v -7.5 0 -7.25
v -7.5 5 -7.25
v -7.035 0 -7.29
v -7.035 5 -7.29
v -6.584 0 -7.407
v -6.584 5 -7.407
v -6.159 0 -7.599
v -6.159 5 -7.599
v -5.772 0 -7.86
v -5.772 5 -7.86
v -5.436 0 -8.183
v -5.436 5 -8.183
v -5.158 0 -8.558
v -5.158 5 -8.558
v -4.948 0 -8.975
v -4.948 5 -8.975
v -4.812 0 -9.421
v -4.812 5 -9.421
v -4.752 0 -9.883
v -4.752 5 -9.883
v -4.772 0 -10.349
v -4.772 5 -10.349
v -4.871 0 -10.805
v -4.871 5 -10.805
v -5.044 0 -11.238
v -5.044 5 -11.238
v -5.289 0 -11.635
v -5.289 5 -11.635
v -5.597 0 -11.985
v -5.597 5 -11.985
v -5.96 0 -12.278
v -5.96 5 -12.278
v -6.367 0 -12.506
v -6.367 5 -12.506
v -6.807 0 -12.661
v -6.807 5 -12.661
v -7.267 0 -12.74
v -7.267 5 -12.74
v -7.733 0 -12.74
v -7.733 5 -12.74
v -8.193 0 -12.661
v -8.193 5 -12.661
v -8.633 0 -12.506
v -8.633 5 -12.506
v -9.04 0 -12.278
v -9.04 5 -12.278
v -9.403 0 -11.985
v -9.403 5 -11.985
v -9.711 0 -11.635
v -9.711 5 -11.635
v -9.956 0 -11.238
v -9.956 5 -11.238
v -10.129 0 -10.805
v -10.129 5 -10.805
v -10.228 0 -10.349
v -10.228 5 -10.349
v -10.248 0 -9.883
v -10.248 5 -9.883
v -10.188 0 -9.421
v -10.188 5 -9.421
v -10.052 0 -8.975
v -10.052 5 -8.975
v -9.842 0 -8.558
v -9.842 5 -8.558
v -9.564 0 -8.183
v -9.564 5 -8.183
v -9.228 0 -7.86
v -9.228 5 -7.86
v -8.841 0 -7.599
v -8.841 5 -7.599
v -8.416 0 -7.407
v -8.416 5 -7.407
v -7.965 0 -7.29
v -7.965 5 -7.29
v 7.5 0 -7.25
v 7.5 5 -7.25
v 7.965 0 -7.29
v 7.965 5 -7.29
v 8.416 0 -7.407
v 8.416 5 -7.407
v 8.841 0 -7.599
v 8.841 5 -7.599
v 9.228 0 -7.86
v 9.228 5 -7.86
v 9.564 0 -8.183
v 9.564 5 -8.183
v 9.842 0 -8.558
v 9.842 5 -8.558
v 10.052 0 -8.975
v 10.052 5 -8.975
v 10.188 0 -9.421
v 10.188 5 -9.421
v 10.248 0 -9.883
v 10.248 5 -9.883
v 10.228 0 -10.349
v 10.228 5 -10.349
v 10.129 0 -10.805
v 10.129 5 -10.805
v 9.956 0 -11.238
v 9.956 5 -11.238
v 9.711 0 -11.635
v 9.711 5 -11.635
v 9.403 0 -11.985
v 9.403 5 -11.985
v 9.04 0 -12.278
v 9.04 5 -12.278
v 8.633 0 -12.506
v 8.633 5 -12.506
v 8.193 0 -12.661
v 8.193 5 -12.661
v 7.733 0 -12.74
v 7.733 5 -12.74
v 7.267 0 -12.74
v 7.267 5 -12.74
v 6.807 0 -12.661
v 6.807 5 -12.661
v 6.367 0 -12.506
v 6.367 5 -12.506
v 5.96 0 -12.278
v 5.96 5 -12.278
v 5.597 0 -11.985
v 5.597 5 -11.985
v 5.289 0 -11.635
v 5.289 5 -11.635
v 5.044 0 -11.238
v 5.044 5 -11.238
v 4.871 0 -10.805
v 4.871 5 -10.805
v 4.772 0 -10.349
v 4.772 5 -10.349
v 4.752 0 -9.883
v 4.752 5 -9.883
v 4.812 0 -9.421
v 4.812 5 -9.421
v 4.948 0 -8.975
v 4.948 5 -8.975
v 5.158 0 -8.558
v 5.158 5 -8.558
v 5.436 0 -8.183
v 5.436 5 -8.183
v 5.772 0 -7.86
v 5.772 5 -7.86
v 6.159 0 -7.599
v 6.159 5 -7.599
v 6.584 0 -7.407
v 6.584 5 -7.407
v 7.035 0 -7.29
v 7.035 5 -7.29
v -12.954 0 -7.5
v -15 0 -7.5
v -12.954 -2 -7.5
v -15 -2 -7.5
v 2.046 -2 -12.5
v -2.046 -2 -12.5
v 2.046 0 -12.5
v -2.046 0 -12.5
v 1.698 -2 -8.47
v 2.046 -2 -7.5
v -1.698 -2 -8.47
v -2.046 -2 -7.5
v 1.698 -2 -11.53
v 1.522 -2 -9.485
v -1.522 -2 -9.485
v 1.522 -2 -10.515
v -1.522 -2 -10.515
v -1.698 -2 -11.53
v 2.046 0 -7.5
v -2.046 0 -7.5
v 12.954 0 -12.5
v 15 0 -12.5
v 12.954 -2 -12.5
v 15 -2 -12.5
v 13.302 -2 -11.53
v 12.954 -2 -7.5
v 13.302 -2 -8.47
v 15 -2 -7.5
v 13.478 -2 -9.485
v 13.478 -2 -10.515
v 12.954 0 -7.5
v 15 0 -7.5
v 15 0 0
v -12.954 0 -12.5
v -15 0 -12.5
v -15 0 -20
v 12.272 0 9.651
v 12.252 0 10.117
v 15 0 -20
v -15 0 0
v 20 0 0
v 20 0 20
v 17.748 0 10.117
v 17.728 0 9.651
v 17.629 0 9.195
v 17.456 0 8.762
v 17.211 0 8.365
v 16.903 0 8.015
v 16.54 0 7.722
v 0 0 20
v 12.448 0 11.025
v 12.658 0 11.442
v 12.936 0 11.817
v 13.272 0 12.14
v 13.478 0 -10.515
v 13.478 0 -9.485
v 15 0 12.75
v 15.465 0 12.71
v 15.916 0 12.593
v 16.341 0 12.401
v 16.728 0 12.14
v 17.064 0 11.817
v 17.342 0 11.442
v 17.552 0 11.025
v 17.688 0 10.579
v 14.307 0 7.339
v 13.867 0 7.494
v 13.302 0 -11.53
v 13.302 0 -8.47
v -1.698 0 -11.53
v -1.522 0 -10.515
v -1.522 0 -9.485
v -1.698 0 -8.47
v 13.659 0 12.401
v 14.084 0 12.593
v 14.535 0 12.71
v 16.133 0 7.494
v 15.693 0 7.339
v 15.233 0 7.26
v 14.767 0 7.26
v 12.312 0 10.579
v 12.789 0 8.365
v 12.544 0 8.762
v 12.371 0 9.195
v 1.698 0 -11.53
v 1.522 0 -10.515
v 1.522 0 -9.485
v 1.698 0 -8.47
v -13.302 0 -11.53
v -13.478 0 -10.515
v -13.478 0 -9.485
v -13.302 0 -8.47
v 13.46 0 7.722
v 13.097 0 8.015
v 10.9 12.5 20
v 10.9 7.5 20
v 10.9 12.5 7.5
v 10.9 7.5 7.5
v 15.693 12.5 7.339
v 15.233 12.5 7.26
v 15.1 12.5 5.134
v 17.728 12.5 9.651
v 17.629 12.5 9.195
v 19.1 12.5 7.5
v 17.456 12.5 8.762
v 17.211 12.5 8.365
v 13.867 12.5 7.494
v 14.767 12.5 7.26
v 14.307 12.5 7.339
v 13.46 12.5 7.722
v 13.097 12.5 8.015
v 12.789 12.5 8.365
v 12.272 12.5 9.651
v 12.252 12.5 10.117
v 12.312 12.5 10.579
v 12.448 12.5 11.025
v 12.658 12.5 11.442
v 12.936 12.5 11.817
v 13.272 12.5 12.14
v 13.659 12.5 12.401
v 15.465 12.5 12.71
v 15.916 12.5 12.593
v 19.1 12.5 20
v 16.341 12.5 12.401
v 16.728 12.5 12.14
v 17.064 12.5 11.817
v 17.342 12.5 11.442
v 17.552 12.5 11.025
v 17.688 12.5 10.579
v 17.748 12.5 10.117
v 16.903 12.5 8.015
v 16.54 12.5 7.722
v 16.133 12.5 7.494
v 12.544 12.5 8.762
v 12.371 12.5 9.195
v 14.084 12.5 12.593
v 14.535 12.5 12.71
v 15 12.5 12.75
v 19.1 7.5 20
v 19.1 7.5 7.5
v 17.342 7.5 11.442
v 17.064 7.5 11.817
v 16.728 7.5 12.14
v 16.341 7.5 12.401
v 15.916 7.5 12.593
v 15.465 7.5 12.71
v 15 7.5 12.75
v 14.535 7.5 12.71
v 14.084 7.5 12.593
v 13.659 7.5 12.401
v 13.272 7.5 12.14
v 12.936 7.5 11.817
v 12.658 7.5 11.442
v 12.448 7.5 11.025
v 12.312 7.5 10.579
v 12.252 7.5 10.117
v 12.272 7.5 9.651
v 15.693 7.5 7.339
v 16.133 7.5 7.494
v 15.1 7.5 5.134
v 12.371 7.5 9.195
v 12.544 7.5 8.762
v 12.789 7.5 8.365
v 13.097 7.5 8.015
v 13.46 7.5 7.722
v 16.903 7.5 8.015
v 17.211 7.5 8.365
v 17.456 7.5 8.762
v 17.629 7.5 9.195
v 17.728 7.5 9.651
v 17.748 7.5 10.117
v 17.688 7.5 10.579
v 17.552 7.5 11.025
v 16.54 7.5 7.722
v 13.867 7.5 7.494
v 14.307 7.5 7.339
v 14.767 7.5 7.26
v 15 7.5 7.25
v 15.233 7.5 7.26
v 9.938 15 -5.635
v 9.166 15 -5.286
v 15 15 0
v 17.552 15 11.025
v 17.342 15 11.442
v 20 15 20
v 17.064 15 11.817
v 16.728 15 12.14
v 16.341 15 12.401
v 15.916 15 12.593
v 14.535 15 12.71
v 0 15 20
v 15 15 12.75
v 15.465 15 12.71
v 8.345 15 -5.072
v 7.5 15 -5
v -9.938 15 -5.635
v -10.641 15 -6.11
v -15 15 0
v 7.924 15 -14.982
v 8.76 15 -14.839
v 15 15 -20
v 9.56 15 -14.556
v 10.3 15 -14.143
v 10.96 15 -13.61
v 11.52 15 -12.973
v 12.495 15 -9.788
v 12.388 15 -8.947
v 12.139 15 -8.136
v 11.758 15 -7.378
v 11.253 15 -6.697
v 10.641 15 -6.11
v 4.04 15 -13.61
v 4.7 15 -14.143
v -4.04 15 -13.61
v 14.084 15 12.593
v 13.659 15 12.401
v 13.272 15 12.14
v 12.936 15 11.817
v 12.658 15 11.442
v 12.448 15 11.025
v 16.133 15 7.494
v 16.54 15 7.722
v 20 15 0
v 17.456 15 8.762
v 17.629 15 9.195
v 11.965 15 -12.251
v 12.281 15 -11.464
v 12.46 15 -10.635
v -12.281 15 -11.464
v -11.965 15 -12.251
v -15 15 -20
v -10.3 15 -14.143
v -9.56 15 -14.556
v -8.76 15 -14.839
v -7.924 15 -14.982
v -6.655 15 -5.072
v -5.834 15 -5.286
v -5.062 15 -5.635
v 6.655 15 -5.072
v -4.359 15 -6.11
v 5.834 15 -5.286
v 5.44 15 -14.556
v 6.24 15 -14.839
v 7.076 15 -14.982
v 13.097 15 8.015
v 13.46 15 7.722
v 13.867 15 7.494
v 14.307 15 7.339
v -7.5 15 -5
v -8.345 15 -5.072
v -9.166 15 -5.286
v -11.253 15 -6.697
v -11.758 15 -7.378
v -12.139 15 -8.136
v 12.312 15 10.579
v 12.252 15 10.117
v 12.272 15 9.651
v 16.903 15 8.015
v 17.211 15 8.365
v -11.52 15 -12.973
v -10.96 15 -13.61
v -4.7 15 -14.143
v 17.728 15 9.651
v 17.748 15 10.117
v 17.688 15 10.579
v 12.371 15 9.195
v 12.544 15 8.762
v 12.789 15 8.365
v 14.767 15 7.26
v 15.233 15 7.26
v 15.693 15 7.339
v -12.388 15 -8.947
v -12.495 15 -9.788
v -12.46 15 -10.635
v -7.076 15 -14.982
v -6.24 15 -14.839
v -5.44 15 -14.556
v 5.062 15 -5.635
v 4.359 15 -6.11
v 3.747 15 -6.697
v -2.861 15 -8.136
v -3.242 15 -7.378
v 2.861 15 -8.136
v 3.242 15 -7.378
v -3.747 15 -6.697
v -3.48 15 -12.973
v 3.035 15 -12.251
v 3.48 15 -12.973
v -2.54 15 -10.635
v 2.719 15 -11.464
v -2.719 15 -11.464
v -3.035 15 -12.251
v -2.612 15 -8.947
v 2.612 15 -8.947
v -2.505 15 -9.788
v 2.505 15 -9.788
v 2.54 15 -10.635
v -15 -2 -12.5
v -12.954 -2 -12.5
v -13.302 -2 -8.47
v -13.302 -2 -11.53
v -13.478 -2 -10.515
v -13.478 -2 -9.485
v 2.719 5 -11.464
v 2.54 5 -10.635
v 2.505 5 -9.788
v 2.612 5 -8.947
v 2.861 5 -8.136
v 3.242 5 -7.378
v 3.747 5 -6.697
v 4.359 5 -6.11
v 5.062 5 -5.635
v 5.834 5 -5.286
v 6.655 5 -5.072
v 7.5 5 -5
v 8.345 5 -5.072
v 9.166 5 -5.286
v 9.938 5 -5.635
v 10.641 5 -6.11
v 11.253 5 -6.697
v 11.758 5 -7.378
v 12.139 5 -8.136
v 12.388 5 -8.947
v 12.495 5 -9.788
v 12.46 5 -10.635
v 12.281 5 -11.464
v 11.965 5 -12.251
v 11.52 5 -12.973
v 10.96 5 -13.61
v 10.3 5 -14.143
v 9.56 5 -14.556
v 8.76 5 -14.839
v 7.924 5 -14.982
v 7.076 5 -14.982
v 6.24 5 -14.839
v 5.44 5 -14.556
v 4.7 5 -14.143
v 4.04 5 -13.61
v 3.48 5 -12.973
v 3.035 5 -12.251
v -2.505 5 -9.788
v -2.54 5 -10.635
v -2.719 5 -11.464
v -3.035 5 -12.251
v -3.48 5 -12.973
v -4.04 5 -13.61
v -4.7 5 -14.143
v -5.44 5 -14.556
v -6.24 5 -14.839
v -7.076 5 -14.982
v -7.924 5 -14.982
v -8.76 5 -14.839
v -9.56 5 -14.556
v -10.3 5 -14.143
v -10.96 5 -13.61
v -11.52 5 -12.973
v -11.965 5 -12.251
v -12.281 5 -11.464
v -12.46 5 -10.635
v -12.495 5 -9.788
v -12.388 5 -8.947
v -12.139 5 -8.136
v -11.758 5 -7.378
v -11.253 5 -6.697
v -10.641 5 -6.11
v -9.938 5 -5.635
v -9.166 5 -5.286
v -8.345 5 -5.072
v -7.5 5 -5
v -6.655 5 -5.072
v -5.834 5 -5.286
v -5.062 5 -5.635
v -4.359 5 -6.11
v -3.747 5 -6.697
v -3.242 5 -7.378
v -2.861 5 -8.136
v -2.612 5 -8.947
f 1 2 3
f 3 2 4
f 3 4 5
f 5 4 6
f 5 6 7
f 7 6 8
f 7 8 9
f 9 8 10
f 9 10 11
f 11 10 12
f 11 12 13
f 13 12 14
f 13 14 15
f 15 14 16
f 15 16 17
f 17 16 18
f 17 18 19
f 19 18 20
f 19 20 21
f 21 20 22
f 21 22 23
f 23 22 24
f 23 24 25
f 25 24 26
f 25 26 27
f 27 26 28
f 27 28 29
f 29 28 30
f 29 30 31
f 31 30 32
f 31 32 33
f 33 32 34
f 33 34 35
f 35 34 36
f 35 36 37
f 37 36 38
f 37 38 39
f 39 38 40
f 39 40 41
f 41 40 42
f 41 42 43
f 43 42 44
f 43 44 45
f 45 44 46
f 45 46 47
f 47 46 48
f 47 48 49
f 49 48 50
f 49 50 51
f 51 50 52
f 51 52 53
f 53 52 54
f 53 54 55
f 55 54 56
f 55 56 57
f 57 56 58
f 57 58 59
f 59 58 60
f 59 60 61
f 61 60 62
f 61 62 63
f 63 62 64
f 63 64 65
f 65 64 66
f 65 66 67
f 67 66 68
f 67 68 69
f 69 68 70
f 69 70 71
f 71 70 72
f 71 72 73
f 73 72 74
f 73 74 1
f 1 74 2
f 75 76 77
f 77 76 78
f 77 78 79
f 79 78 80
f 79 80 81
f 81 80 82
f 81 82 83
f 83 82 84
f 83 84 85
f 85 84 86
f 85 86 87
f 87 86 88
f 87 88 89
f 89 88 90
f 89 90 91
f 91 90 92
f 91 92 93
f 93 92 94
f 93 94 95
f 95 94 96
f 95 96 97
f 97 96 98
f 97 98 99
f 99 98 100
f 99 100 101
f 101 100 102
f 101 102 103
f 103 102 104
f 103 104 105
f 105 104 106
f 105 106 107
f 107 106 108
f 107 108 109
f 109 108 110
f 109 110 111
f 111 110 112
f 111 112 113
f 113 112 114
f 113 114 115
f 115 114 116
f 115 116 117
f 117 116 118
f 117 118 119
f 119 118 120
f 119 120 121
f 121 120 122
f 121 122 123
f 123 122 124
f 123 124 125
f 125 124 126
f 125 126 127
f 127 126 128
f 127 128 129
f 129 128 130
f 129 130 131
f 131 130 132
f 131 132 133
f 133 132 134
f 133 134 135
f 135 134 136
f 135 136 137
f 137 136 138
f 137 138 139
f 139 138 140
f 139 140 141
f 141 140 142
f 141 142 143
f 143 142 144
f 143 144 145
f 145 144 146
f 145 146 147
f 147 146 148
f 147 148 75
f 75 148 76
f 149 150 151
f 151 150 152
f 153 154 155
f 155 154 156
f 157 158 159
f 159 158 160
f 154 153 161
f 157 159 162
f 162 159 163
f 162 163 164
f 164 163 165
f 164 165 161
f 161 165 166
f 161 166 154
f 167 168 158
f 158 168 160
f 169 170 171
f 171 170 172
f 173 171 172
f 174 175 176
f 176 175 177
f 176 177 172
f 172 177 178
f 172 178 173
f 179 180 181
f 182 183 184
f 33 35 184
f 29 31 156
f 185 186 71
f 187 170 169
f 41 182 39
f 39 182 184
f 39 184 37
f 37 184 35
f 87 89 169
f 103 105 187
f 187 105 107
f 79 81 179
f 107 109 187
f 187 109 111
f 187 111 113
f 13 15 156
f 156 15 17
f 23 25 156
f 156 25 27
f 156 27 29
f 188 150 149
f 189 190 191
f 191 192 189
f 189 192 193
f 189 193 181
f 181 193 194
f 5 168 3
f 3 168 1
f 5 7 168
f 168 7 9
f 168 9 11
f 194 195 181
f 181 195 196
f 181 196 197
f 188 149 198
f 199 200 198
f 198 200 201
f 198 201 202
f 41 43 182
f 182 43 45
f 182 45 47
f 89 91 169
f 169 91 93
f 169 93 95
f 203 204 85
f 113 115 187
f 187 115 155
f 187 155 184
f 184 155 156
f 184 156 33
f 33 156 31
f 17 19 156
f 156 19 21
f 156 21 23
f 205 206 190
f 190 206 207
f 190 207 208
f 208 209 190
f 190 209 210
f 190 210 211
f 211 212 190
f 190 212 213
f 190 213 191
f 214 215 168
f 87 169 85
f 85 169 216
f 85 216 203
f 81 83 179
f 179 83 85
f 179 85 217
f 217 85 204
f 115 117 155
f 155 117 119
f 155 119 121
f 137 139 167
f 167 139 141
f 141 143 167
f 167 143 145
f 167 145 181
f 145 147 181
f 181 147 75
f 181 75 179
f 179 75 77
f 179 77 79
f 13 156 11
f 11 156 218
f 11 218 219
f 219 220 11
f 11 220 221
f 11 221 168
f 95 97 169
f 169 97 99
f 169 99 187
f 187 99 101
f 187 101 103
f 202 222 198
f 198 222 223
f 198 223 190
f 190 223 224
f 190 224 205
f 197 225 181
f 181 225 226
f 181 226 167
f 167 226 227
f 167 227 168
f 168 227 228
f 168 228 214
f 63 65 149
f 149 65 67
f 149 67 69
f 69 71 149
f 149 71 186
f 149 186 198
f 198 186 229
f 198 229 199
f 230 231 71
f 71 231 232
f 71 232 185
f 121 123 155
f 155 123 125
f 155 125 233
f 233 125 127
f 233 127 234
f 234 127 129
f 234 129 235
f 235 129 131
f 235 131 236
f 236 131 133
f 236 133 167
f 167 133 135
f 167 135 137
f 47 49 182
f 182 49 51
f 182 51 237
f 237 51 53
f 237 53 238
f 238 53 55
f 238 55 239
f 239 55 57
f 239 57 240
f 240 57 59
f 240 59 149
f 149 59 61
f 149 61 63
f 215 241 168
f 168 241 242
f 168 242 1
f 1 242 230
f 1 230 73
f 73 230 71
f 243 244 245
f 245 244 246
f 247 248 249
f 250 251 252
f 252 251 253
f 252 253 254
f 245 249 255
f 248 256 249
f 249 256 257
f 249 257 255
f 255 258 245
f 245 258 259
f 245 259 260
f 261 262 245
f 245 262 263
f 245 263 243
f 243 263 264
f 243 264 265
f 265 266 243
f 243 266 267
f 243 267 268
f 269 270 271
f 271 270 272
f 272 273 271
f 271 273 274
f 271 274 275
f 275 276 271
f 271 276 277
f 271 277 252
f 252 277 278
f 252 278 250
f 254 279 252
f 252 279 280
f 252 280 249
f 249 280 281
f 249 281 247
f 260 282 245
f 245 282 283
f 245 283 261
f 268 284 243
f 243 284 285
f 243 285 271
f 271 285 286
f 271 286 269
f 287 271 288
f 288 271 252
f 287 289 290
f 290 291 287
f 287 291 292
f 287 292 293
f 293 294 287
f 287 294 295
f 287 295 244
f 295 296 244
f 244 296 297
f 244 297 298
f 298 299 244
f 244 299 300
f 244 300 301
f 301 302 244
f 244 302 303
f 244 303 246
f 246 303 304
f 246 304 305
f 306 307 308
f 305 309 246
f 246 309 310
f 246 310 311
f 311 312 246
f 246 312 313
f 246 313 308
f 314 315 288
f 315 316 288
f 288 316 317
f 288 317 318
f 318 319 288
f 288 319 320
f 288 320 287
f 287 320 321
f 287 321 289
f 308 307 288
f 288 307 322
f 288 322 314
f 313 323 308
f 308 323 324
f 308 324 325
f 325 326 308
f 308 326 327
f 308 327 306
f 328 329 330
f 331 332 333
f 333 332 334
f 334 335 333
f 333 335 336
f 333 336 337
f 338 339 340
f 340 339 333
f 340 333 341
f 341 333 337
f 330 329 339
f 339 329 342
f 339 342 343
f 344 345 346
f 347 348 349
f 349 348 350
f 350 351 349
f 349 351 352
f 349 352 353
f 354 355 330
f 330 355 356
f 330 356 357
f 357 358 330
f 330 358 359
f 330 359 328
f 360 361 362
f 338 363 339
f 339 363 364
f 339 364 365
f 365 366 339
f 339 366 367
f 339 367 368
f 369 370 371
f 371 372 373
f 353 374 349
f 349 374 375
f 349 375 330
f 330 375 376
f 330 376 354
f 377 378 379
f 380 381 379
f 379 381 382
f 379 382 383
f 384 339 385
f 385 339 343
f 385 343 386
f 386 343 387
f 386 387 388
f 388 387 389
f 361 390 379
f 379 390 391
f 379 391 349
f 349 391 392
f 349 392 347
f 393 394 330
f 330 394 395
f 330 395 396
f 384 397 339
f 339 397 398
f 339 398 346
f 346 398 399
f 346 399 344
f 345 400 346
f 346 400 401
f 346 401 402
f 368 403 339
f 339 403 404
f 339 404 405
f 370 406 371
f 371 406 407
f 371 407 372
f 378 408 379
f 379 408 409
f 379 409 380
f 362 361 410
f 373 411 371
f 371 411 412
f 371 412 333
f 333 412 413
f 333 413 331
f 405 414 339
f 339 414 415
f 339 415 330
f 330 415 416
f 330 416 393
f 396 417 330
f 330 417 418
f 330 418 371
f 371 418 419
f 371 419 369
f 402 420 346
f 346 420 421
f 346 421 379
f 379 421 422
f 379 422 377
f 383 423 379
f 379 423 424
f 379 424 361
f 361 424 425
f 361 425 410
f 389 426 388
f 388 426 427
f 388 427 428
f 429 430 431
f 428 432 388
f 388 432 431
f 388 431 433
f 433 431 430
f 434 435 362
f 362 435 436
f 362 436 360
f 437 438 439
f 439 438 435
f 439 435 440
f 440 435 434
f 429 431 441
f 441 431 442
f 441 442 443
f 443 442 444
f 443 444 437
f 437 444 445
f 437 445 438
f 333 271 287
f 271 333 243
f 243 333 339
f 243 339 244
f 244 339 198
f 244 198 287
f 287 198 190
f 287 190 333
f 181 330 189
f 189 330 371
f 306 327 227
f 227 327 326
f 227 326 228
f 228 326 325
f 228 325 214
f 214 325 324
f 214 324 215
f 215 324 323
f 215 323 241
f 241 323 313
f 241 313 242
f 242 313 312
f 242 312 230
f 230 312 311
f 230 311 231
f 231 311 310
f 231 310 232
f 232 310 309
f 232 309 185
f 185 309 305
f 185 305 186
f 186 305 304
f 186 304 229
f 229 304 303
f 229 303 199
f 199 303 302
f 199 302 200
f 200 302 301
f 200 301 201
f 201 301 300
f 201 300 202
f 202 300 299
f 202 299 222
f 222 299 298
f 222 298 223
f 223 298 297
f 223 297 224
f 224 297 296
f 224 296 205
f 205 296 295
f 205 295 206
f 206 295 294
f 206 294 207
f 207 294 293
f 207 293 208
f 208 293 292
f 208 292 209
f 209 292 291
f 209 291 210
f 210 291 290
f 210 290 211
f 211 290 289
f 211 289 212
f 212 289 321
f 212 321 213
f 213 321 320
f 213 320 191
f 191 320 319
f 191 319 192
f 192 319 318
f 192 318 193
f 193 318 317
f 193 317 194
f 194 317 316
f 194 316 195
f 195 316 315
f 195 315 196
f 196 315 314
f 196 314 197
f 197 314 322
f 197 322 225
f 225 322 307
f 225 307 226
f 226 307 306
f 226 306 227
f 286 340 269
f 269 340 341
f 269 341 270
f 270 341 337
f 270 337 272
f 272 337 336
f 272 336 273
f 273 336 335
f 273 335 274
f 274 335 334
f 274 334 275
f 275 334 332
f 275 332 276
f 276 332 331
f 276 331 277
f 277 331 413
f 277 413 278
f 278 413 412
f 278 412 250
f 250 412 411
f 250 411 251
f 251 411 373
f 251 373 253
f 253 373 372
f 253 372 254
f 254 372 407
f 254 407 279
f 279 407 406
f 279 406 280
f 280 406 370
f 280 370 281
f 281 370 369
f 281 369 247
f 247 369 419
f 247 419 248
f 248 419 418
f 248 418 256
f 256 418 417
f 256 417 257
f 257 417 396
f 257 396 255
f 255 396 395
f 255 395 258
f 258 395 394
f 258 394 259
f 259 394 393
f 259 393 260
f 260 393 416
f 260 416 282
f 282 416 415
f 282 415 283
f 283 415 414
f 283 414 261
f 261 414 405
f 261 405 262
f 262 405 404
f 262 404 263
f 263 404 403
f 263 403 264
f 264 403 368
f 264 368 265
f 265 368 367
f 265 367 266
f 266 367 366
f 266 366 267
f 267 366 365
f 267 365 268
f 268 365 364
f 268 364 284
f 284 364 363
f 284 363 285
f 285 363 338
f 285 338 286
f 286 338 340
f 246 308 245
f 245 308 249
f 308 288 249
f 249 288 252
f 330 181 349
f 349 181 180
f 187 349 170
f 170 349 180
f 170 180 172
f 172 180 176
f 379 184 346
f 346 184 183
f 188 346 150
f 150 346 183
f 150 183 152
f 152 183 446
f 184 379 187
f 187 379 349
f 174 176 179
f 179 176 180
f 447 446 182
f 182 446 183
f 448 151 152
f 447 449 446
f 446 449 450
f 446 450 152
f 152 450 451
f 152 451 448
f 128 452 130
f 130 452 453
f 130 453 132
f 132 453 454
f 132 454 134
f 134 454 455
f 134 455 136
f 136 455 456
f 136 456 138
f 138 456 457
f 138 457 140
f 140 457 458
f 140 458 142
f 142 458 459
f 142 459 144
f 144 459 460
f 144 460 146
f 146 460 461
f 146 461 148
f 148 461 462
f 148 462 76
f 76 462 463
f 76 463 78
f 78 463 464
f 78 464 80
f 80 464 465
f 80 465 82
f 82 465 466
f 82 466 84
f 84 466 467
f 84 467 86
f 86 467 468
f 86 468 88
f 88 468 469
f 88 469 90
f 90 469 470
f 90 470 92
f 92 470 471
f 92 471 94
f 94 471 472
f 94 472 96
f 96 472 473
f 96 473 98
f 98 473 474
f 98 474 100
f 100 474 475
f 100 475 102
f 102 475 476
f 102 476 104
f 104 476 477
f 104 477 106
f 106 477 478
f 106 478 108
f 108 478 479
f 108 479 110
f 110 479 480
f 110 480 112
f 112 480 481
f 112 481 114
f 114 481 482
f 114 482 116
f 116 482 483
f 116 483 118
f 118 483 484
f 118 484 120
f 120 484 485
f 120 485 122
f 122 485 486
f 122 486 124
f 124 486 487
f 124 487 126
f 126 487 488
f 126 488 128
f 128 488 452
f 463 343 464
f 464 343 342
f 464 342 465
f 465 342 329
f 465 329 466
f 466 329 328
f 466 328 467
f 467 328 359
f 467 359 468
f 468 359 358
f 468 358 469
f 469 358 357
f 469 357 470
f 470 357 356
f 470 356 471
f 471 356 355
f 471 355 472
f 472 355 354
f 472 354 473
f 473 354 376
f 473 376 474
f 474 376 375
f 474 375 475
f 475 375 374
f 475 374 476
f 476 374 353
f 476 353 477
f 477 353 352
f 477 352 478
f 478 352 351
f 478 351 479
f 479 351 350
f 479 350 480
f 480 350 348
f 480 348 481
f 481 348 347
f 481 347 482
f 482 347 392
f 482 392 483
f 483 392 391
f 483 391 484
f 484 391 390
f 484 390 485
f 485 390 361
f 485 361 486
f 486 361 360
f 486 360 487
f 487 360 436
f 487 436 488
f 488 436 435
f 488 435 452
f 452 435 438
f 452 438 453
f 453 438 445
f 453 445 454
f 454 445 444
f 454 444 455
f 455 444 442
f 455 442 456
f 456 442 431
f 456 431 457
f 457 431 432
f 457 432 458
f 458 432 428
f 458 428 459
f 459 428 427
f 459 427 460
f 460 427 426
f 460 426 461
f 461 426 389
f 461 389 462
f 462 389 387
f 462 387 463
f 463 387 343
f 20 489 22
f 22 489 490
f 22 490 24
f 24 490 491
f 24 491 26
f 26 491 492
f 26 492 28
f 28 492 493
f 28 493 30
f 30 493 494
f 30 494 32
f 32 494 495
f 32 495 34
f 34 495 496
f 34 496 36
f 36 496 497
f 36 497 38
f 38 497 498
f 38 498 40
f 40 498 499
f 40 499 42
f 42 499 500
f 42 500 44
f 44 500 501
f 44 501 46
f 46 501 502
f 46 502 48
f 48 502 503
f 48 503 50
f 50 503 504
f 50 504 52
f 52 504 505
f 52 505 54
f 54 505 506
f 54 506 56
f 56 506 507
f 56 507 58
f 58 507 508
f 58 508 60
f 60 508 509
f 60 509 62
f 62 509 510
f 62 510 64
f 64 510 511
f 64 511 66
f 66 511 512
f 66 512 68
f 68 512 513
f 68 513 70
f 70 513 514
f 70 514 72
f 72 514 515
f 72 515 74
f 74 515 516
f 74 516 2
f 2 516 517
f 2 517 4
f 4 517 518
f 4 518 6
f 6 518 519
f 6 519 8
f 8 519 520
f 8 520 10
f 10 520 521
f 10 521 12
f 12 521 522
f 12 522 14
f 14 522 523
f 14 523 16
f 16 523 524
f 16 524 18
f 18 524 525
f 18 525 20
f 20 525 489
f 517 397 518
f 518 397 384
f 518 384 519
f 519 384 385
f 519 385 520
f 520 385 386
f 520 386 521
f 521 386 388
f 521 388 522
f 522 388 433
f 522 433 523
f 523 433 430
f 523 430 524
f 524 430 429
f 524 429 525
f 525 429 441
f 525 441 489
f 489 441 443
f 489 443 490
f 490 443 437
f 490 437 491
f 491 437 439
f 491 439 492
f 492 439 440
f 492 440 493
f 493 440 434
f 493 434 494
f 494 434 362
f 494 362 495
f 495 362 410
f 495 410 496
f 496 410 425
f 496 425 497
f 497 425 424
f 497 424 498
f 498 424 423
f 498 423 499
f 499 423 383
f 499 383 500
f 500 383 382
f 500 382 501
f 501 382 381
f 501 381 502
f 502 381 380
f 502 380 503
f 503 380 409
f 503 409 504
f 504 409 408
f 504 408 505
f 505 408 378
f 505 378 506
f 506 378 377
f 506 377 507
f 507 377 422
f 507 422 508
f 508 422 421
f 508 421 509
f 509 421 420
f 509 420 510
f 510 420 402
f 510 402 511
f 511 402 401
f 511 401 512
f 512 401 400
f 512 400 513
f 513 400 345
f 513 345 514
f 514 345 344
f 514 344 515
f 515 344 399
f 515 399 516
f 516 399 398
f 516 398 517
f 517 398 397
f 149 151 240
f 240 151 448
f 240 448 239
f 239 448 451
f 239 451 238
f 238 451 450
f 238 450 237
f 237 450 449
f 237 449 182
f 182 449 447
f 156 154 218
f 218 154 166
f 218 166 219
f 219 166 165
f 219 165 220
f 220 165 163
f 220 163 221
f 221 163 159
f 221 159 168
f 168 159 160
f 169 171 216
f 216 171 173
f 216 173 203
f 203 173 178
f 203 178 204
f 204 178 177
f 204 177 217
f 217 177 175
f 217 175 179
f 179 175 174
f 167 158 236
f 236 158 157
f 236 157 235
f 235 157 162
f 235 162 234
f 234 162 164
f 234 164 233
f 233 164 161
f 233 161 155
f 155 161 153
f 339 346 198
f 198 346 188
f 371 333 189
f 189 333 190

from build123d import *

# Parameters (mm, degrees)
SKETCH1_W           = 30
SKETCH1_H           = 15
BOSS_EXTRUDE1_DEPTH = 20
SKETCH2_W           = 8.2
SKETCH2_H           = 5
CUT_EXTRUDE1_DEPTH  = 21
SKETCH3_R           = 2.75
CUT_EXTRUDE2_DEPTH  = 16
BOSS_EXTRUDE2_REACH = 9.5
SKETCH5_W           = 30
SKETCH5_H           = 15
BOSS_EXTRUDE3_DEPTH = 20
SKETCH6_W           = 30
SKETCH6_H           = 5
BOSS_EXTRUDE4_DEPTH = 2
SKETCH7_R           = 2.75
CUT_EXTRUDE3_DEPTH  = 18
SKETCH8_R           = 5
CUT_EXTRUDE4_DEPTH  = 10
SKETCH10_R          = 6
CUT_EXTRUDE5_DEPTH  = 2
BOSS_EXTRUDE5_DEPTH = 15
SKETCH12_W          = 10
SKETCH12_H          = 20
CUT_EXTRUDE6_DEPTH  = 15


with BuildPart() as part:
    # Sketch1 → Boss-Extrude1 (new body)
    with BuildSketch(Plane.XY):
        with Locations((15, 7.5)):
            Rectangle(SKETCH1_W, SKETCH1_H)
    extrude(amount=BOSS_EXTRUDE1_DEPTH)

    # Sketch2 → Cut-Extrude1 (cut, through all)
    with BuildSketch(Plane.XY.offset(20)):
        with Locations((15, 10)):
            Rectangle(SKETCH2_W, SKETCH2_H)
    extrude(amount=-CUT_EXTRUDE1_DEPTH, mode=Mode.SUBTRACT)

    # Sketch3 → Cut-Extrude2 (cut, through all)
    with BuildSketch(Plane(origin=(0, 15, 0), x_dir=(1, 0, 0), z_dir=(0, 1, 0))):
        with Locations((15, -10)):
            Circle(SKETCH3_R)
    extrude(amount=-CUT_EXTRUDE2_DEPTH, mode=Mode.SUBTRACT)

    # Sketch4 → Boss-Extrude2 (add, up to next)
    with BuildSketch(Plane(origin=(0, 7.5, 0), x_dir=(1, 0, 0), z_dir=(0, 1, 0)), mode=Mode.PRIVATE) as boss_extrude2_sk1:
        Polygon((19.1, -7.5), (15.1, -5.133920143), (10.9, -7.5), (10.9, 0), (19.1, 0), align=None)
    boss_extrude2_tool1 = extrude(boss_extrude2_sk1.sketch, amount=BOSS_EXTRUDE2_REACH, mode=Mode.PRIVATE) - part.part
    add(boss_extrude2_tool1.solids().sort_by_distance((14.993757, 7.5, 3.195407))[0])

    # Sketch5 → Boss-Extrude3 (add)
    with BuildSketch(Plane(origin=(0, 0, 0), x_dir=(-1, 0, 0), z_dir=(0, 0, -1))):
        with Locations((0, 7.5)):
            Rectangle(SKETCH5_W, SKETCH5_H)
    extrude(amount=BOSS_EXTRUDE3_DEPTH)

    # Sketch6 → Boss-Extrude4 (add)
    with BuildSketch(Plane.XZ):
        with Locations((0, -10)):
            Rectangle(SKETCH6_W, SKETCH6_H)
    extrude(amount=BOSS_EXTRUDE4_DEPTH)

    # Sketch7 → Cut-Extrude3 (cut, through all)
    with BuildSketch(Plane(origin=(0, 15, 0), x_dir=(1, 0, 0), z_dir=(0, 1, 0))):
        with Locations((7.5, 10)):
            Circle(SKETCH7_R)
        with Locations((-7.5, 10)):
            Circle(SKETCH7_R)
    extrude(amount=-CUT_EXTRUDE3_DEPTH, mode=Mode.SUBTRACT)

    # Sketch8 → Cut-Extrude4 (cut)
    with BuildSketch(Plane(origin=(0, 15, 0), x_dir=(1, 0, 0), z_dir=(0, 1, 0))):
        with Locations((7.5, 10)):
            Circle(SKETCH8_R)
        with Locations((-7.5, 10)):
            Circle(SKETCH8_R)
    extrude(amount=-CUT_EXTRUDE4_DEPTH, mode=Mode.SUBTRACT)

    # Sketch10 → Cut-Extrude5 (cut)
    with BuildSketch(Plane.XZ.offset(2)):
        with Locations((-7.5, -10)):
            Circle(SKETCH10_R)
        with Locations((7.5, -10)):
            Circle(SKETCH10_R)
    extrude(amount=-CUT_EXTRUDE5_DEPTH, mode=Mode.SUBTRACT)

    # Sketch11 → Boss-Extrude5 (add)
    with BuildSketch(Plane(origin=(0, 15, 0), x_dir=(1, 0, 0), z_dir=(0, 1, 0))):
        Polygon((-15, 0), (0, -20), (0, 0), align=None)
    extrude(amount=-BOSS_EXTRUDE5_DEPTH)

    # Sketch12 → Cut-Extrude6 (cut)
    with BuildSketch(Plane(origin=(0, 15, 0), x_dir=(1, 0, 0), z_dir=(0, 1, 0))):
        with Locations((25, -10)):
            Rectangle(SKETCH12_W, SKETCH12_H)
    extrude(amount=-CUT_EXTRUDE6_DEPTH, mode=Mode.SUBTRACT)


solid = part.part
